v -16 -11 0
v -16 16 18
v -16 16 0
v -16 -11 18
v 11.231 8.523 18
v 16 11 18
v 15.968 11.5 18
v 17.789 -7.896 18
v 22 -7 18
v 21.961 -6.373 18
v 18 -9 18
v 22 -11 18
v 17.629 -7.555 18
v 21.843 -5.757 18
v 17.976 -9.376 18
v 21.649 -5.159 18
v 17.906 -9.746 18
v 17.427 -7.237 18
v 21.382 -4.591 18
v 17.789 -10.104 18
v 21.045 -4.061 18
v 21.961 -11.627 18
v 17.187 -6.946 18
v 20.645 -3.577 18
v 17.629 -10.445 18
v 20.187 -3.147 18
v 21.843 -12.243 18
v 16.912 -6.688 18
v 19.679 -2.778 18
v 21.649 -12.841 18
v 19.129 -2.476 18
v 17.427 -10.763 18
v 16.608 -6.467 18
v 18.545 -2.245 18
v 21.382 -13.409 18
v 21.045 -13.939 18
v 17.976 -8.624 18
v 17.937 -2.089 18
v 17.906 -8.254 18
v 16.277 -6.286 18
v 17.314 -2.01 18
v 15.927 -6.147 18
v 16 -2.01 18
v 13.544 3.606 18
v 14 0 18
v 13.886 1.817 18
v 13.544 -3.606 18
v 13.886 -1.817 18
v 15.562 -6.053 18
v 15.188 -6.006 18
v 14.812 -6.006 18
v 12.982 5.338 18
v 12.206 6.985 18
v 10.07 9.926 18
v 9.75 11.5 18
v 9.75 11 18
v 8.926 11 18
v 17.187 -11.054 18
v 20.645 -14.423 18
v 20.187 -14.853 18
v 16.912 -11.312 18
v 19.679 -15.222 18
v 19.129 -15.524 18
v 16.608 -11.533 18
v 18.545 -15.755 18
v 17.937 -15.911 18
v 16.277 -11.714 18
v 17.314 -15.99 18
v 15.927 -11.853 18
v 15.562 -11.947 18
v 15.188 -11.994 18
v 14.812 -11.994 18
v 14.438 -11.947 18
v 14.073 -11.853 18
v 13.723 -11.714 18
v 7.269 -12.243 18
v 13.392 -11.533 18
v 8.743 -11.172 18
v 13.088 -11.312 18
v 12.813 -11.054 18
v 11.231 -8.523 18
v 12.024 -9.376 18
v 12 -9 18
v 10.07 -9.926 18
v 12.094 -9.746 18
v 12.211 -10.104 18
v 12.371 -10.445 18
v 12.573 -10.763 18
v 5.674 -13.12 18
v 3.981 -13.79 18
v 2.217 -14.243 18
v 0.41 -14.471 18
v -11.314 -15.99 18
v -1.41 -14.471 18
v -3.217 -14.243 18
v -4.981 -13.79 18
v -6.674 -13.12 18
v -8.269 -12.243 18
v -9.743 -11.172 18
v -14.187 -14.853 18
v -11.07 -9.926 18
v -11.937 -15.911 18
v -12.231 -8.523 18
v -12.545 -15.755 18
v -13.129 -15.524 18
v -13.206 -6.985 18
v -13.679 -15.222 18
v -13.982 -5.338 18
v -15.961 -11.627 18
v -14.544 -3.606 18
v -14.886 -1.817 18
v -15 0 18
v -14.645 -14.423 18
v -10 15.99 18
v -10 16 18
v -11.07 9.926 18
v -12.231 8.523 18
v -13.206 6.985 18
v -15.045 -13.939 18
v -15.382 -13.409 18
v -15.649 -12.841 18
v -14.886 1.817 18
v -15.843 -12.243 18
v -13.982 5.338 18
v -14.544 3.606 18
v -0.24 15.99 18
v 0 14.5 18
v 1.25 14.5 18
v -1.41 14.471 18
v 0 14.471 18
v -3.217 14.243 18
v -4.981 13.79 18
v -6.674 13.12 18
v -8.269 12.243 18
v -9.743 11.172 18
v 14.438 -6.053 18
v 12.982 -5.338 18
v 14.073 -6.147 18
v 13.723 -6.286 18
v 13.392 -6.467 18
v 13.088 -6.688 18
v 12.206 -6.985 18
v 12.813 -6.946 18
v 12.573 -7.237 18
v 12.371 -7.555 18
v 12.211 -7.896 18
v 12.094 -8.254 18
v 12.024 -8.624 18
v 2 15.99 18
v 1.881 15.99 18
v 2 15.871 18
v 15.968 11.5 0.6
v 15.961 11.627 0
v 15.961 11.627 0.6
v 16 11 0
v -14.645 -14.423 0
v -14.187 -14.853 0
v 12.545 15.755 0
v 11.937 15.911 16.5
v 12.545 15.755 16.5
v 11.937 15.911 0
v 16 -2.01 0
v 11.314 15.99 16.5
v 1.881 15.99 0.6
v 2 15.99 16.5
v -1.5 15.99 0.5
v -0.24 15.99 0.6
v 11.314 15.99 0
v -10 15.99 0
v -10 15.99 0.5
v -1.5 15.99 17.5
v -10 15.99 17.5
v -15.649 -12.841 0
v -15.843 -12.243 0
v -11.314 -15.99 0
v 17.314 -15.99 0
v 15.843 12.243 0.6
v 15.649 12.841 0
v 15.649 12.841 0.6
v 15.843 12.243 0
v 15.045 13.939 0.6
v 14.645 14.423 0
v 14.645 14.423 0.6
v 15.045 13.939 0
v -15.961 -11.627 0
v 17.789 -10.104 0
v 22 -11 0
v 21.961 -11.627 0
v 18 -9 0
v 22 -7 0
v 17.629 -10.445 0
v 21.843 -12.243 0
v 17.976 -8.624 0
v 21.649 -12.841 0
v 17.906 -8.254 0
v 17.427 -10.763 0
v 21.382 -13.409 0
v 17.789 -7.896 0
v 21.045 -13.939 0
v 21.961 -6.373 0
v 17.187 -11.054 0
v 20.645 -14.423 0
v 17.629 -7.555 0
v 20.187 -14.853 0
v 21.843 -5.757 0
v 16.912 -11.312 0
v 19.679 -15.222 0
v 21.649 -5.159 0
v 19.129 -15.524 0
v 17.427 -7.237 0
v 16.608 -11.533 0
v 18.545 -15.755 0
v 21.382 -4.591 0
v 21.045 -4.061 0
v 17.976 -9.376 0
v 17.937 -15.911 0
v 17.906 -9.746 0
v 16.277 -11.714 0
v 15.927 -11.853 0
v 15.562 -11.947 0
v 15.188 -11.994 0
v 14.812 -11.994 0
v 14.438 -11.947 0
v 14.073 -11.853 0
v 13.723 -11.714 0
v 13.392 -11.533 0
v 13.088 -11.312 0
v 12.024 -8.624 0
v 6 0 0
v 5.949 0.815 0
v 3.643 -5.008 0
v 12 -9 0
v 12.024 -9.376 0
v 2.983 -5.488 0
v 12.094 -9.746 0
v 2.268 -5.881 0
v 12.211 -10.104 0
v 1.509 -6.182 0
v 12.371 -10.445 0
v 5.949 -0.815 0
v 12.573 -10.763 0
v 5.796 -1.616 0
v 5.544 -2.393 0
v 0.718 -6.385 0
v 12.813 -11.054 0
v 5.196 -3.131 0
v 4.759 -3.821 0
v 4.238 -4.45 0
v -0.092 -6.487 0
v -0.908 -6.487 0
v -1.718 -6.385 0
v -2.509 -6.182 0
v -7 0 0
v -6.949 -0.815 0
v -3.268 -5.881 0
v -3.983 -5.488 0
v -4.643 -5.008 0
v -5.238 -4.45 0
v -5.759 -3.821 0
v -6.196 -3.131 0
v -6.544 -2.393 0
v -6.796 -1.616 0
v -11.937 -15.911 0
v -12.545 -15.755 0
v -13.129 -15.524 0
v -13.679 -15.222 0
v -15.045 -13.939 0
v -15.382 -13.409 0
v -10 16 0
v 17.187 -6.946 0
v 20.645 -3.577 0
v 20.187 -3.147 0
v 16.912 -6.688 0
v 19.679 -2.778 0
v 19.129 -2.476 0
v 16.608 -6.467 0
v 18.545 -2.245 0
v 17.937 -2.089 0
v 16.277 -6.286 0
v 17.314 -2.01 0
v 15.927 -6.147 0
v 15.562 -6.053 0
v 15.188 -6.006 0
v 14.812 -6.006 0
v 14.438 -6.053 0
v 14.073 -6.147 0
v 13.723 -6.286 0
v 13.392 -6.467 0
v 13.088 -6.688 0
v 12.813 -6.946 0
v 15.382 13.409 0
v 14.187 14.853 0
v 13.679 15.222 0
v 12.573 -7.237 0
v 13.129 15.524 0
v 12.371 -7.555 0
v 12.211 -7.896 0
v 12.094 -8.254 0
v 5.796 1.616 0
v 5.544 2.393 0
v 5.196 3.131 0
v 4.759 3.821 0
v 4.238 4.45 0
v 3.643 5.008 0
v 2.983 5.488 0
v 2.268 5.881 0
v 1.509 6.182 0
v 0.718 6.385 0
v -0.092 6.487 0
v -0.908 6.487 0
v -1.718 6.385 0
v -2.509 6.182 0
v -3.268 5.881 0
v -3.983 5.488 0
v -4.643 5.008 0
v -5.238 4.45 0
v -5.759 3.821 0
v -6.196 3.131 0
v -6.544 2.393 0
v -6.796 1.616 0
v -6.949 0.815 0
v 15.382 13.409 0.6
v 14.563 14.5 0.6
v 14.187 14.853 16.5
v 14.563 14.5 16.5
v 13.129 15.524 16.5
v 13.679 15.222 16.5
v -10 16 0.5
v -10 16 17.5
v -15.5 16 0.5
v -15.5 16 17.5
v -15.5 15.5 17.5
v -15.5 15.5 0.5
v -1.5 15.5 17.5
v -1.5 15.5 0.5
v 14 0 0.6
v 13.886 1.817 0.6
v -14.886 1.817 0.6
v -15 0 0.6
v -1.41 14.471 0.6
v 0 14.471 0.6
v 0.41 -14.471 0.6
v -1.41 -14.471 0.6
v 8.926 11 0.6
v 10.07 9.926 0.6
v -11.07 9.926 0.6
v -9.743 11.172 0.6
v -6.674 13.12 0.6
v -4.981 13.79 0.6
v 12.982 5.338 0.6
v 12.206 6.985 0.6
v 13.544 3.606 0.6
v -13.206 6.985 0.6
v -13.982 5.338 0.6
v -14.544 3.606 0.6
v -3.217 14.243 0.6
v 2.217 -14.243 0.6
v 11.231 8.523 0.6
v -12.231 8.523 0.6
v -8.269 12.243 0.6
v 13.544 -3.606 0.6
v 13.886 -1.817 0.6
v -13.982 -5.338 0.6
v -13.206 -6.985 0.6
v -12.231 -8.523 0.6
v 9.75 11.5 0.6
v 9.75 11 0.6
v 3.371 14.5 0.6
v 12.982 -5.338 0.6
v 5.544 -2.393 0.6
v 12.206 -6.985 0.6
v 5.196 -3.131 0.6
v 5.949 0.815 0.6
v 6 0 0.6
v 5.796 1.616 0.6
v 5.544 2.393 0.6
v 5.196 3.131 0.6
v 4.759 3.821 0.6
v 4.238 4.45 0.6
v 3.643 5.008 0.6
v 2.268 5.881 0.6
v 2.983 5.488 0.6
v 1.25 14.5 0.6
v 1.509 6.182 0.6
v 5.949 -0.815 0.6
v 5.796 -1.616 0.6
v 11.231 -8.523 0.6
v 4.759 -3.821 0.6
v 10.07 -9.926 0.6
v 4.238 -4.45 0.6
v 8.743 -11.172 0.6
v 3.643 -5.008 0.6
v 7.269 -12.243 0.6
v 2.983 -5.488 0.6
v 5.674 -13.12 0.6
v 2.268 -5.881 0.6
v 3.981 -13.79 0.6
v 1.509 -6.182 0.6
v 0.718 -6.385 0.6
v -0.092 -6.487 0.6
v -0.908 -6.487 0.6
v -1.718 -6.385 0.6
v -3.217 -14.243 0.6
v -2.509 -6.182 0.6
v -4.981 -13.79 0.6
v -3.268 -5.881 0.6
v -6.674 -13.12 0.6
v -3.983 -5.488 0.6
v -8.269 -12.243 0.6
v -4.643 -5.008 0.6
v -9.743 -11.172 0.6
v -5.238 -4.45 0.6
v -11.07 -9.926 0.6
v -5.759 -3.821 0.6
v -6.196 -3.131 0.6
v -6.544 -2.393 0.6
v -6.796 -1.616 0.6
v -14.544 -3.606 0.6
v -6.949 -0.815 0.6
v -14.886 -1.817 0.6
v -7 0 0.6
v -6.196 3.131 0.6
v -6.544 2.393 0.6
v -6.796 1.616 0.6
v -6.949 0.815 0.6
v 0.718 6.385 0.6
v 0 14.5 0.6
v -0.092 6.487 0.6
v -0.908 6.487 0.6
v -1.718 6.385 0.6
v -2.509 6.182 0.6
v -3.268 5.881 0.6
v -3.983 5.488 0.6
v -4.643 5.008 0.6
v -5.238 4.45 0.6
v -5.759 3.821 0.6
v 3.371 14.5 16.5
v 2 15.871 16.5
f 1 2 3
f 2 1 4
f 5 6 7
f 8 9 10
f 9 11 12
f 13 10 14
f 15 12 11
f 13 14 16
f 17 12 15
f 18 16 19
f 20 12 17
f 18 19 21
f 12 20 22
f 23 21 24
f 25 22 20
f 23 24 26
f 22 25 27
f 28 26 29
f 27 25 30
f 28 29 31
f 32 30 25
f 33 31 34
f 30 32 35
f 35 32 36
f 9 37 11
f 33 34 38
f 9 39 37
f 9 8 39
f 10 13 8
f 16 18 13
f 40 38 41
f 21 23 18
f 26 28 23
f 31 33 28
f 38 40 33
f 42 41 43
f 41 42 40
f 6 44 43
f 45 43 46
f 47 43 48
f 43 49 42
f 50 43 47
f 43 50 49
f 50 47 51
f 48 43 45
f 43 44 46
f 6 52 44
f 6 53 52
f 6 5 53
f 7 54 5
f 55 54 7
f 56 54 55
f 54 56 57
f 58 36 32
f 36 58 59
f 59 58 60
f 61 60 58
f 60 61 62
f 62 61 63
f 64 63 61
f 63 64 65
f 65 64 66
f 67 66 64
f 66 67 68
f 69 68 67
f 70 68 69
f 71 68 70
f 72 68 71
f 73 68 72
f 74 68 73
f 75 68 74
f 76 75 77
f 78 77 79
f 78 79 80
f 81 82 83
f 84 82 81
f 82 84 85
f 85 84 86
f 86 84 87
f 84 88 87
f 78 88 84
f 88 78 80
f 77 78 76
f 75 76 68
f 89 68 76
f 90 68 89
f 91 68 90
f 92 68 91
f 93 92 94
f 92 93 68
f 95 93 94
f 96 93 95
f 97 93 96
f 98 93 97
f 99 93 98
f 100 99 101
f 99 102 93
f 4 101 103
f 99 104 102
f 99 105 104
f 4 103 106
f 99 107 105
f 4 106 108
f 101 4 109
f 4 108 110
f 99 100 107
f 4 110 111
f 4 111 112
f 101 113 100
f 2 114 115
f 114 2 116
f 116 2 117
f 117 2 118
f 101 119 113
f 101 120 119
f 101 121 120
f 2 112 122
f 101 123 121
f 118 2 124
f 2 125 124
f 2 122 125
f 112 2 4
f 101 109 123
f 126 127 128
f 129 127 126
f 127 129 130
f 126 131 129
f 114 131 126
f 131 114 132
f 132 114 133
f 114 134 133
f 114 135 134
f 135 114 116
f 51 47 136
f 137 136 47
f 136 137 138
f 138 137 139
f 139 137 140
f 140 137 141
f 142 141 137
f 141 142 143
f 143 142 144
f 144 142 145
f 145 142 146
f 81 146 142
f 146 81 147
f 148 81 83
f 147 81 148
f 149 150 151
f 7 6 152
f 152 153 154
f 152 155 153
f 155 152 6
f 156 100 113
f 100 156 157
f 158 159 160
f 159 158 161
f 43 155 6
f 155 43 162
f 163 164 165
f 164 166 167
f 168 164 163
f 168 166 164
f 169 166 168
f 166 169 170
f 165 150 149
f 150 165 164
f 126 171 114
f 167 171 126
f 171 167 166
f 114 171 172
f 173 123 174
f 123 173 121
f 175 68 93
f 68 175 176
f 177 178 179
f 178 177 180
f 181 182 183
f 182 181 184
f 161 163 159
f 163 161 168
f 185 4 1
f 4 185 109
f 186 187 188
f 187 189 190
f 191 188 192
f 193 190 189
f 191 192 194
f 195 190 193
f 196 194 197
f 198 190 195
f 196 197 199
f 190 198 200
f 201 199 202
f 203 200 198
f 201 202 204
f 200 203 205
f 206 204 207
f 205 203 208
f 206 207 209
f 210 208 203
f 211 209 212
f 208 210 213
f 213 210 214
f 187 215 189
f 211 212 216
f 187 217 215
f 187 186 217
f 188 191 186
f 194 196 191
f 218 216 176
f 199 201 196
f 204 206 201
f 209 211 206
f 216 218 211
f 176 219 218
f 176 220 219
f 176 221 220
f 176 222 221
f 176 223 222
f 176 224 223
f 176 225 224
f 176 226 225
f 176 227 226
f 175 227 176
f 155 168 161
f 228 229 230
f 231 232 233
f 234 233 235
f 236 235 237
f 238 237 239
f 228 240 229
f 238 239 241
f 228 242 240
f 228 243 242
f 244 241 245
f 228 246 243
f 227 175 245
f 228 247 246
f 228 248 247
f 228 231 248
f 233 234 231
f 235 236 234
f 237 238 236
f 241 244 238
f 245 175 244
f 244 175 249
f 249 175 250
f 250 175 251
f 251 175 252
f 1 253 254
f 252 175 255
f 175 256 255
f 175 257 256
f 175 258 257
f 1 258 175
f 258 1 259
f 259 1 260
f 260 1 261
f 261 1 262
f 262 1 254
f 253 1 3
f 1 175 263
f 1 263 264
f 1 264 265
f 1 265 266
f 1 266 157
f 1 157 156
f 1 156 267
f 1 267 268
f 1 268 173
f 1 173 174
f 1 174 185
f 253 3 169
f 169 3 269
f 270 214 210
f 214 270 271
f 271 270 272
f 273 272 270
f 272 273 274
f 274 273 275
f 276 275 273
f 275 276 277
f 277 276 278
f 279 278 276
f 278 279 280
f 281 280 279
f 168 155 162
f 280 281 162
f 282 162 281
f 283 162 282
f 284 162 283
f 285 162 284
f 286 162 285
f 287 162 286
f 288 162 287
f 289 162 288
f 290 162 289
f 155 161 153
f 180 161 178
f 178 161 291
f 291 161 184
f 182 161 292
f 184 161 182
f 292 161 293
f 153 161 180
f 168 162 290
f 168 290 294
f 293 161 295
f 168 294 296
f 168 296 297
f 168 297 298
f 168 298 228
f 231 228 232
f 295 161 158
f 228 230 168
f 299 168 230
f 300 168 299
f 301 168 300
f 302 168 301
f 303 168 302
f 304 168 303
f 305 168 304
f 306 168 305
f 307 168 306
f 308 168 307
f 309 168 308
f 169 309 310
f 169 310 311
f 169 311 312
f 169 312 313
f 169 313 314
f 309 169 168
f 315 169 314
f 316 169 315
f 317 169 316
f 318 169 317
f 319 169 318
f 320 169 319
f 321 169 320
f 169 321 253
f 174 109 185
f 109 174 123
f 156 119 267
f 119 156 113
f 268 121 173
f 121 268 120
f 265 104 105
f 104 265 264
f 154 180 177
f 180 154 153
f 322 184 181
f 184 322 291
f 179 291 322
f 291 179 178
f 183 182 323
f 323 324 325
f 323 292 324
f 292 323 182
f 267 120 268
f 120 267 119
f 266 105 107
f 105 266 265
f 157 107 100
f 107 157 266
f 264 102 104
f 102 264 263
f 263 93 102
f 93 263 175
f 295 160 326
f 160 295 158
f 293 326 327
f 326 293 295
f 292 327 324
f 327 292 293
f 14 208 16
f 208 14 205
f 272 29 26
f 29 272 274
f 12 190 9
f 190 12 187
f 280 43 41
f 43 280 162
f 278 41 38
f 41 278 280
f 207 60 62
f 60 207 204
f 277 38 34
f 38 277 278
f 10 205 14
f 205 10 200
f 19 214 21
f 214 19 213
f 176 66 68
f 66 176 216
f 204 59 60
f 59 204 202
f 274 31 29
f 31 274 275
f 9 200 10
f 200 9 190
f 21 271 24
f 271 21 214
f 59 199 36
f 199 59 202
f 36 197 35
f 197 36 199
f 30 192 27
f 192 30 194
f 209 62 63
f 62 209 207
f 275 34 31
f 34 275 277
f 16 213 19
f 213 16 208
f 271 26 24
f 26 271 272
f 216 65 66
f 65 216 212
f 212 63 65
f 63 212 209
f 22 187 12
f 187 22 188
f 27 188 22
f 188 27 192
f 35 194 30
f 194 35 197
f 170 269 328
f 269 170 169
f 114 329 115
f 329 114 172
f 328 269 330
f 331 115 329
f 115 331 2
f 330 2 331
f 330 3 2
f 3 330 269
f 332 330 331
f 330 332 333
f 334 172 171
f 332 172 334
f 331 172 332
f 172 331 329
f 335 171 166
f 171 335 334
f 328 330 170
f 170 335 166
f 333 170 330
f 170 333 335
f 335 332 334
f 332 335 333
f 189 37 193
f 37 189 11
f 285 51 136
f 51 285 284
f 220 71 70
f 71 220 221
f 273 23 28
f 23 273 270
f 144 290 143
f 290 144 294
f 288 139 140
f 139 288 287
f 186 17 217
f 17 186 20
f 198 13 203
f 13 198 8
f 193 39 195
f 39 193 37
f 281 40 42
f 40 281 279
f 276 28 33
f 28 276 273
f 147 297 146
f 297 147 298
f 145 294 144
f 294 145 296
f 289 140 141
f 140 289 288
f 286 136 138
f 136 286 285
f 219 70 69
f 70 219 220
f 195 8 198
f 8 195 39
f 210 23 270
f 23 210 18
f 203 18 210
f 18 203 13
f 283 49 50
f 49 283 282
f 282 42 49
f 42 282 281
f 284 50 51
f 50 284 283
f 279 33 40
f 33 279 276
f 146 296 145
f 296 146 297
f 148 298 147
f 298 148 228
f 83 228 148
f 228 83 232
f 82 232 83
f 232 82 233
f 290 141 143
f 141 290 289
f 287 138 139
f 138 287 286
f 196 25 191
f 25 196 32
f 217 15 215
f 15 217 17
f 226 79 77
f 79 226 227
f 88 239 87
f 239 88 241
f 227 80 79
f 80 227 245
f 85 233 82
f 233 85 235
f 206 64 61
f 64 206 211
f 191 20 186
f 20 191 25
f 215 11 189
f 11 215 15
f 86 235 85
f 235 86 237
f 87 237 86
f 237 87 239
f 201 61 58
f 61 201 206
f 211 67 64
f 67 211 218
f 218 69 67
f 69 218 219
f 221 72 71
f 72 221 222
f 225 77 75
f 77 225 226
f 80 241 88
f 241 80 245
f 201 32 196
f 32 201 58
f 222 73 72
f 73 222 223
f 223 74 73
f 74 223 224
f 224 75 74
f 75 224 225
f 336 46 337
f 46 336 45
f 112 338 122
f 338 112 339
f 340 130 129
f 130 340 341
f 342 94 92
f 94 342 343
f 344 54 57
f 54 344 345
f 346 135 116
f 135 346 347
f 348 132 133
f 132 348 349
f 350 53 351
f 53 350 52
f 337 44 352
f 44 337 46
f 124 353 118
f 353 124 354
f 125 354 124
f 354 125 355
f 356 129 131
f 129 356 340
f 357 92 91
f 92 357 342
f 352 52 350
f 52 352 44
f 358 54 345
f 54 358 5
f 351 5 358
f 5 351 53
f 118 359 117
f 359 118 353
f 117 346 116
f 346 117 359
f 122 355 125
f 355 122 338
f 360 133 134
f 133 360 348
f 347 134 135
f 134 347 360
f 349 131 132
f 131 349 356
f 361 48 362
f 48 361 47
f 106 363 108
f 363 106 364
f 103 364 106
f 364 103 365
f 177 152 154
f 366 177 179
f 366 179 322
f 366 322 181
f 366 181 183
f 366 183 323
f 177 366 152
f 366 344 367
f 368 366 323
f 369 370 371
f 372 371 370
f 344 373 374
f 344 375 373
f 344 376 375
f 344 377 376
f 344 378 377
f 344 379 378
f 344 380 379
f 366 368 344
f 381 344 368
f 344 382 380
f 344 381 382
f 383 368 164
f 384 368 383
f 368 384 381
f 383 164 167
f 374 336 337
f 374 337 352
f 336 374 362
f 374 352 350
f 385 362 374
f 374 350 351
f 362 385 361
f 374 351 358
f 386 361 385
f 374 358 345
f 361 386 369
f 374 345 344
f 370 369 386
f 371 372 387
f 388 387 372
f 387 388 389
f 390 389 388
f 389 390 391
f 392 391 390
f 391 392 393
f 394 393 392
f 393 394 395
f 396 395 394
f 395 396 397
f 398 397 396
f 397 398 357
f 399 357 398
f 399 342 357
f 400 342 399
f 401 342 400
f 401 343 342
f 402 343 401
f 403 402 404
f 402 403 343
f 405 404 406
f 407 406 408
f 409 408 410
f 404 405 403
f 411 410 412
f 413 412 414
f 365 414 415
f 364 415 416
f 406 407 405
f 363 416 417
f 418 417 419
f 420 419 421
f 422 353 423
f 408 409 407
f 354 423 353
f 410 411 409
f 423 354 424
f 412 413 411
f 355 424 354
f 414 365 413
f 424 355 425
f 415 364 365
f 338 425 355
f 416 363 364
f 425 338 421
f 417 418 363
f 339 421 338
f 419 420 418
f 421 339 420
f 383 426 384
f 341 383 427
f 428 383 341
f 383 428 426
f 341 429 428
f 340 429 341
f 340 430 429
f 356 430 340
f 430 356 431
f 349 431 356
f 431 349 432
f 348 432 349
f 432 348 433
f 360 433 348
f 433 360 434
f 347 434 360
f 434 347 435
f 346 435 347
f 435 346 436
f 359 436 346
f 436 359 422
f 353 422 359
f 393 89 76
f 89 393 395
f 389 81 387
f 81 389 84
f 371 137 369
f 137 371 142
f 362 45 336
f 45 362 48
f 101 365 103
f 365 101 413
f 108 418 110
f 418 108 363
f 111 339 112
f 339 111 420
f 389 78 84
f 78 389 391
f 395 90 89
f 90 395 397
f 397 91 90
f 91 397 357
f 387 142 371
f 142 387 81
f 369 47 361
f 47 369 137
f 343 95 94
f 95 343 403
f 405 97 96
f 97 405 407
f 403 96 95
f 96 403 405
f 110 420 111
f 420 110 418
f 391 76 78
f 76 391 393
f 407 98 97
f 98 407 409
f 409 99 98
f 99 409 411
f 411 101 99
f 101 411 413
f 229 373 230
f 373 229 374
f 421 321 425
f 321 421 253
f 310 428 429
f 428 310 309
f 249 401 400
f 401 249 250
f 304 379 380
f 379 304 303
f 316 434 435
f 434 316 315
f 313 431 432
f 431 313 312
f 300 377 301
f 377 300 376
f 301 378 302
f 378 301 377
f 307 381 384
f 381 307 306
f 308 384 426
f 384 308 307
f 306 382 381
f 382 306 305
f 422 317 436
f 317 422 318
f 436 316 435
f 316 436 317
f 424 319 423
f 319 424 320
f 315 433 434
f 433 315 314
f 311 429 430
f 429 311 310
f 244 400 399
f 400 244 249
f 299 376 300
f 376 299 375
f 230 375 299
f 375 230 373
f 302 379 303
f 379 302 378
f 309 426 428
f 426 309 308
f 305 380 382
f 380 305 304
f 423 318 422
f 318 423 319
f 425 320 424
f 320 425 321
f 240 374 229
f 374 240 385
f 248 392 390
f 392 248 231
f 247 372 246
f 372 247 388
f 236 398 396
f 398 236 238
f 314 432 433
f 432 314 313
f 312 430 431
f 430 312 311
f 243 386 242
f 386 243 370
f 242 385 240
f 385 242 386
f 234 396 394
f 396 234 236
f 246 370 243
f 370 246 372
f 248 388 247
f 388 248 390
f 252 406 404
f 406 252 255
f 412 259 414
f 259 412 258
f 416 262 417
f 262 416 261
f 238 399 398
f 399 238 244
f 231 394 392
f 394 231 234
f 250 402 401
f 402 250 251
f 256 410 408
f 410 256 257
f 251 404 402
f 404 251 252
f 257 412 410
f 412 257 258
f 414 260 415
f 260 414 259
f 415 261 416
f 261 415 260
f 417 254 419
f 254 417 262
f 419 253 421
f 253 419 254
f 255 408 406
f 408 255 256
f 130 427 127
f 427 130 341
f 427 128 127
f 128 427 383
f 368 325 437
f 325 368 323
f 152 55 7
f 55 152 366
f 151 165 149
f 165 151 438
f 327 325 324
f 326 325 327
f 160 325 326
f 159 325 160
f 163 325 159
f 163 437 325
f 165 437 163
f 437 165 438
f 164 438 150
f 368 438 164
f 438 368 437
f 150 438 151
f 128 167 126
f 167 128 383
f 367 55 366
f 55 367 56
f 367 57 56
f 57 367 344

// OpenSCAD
$fn = 50;


difference() {
	union() {
		hull() {
			translate(v = [-11.0000000000, 11.0000000000, 0]) {
				cylinder(h = 18, r = 5);
			}
			translate(v = [11.0000000000, 11.0000000000, 0]) {
				cylinder(h = 18, r = 5);
			}
			translate(v = [-11.0000000000, -11.0000000000, 0]) {
				cylinder(h = 18, r = 5);
			}
			translate(v = [11.0000000000, -11.0000000000, 0]) {
				cylinder(h = 18, r = 5);
			}
		}
		translate(v = [7.5000000000, -9.0000000000, 0]) {
			hull() {
				translate(v = [-9.5000000000, 2.0000000000, 0]) {
					cylinder(h = 18, r = 5);
				}
				translate(v = [9.5000000000, 2.0000000000, 0]) {
					cylinder(h = 18, r = 5);
				}
				translate(v = [-9.5000000000, -2.0000000000, 0]) {
					cylinder(h = 18, r = 5);
				}
				translate(v = [9.5000000000, -2.0000000000, 0]) {
					cylinder(h = 18, r = 5);
				}
			}
		}
		translate(v = [-16.0000000000, 10.0000000000, 0]) {
			cube(size = [6, 6, 18]);
		}
	}
	union() {
		translate(v = [-15.5000000000, 15.5000000000, 0.5000000000]) {
			cube(size = [14, 0.5000000000, 17.0000000000]);
		}
		translate(v = [15.0000000000, -9.0000000000, -50.0000000000]) {
			cylinder(h = 100, r = 3.0000000000);
		}
		translate(v = [-0.5000000000, 0.0000000000, 0.6000000000]) {
			cylinder(h = 20.4000000000, r = 14.5000000000);
		}
		translate(v = [-0.5000000000, 0.0000000000, -9.0000000000]) {
			cylinder(h = 18, r = 6.5000000000);
		}
		translate(v = [0.0000000000, 11.5000000000, 0.6000000000]) {
			cube(size = [16.0000000000, 3, 20.4000000000]);
		}
		translate(v = [2.0000000000, 11.5000000000, 16.5000000000]) {
			cube(size = [14.0000000000, 6, 1.5000000000]);
		}
		translate(v = [-3.0000000000, 18.7500000000, 0.6000000000]) {
			rotate(a = [0, 0, -45]) {
				cube(size = [10, 1.5000000000, 20.4000000000]);
			}
		}
		translate(v = [2.2500000000, 11.0000000000, 0.6000000000]) {
			cube(size = [7.5000000000, 2, 17.4000000000]);
		}
	}
}
